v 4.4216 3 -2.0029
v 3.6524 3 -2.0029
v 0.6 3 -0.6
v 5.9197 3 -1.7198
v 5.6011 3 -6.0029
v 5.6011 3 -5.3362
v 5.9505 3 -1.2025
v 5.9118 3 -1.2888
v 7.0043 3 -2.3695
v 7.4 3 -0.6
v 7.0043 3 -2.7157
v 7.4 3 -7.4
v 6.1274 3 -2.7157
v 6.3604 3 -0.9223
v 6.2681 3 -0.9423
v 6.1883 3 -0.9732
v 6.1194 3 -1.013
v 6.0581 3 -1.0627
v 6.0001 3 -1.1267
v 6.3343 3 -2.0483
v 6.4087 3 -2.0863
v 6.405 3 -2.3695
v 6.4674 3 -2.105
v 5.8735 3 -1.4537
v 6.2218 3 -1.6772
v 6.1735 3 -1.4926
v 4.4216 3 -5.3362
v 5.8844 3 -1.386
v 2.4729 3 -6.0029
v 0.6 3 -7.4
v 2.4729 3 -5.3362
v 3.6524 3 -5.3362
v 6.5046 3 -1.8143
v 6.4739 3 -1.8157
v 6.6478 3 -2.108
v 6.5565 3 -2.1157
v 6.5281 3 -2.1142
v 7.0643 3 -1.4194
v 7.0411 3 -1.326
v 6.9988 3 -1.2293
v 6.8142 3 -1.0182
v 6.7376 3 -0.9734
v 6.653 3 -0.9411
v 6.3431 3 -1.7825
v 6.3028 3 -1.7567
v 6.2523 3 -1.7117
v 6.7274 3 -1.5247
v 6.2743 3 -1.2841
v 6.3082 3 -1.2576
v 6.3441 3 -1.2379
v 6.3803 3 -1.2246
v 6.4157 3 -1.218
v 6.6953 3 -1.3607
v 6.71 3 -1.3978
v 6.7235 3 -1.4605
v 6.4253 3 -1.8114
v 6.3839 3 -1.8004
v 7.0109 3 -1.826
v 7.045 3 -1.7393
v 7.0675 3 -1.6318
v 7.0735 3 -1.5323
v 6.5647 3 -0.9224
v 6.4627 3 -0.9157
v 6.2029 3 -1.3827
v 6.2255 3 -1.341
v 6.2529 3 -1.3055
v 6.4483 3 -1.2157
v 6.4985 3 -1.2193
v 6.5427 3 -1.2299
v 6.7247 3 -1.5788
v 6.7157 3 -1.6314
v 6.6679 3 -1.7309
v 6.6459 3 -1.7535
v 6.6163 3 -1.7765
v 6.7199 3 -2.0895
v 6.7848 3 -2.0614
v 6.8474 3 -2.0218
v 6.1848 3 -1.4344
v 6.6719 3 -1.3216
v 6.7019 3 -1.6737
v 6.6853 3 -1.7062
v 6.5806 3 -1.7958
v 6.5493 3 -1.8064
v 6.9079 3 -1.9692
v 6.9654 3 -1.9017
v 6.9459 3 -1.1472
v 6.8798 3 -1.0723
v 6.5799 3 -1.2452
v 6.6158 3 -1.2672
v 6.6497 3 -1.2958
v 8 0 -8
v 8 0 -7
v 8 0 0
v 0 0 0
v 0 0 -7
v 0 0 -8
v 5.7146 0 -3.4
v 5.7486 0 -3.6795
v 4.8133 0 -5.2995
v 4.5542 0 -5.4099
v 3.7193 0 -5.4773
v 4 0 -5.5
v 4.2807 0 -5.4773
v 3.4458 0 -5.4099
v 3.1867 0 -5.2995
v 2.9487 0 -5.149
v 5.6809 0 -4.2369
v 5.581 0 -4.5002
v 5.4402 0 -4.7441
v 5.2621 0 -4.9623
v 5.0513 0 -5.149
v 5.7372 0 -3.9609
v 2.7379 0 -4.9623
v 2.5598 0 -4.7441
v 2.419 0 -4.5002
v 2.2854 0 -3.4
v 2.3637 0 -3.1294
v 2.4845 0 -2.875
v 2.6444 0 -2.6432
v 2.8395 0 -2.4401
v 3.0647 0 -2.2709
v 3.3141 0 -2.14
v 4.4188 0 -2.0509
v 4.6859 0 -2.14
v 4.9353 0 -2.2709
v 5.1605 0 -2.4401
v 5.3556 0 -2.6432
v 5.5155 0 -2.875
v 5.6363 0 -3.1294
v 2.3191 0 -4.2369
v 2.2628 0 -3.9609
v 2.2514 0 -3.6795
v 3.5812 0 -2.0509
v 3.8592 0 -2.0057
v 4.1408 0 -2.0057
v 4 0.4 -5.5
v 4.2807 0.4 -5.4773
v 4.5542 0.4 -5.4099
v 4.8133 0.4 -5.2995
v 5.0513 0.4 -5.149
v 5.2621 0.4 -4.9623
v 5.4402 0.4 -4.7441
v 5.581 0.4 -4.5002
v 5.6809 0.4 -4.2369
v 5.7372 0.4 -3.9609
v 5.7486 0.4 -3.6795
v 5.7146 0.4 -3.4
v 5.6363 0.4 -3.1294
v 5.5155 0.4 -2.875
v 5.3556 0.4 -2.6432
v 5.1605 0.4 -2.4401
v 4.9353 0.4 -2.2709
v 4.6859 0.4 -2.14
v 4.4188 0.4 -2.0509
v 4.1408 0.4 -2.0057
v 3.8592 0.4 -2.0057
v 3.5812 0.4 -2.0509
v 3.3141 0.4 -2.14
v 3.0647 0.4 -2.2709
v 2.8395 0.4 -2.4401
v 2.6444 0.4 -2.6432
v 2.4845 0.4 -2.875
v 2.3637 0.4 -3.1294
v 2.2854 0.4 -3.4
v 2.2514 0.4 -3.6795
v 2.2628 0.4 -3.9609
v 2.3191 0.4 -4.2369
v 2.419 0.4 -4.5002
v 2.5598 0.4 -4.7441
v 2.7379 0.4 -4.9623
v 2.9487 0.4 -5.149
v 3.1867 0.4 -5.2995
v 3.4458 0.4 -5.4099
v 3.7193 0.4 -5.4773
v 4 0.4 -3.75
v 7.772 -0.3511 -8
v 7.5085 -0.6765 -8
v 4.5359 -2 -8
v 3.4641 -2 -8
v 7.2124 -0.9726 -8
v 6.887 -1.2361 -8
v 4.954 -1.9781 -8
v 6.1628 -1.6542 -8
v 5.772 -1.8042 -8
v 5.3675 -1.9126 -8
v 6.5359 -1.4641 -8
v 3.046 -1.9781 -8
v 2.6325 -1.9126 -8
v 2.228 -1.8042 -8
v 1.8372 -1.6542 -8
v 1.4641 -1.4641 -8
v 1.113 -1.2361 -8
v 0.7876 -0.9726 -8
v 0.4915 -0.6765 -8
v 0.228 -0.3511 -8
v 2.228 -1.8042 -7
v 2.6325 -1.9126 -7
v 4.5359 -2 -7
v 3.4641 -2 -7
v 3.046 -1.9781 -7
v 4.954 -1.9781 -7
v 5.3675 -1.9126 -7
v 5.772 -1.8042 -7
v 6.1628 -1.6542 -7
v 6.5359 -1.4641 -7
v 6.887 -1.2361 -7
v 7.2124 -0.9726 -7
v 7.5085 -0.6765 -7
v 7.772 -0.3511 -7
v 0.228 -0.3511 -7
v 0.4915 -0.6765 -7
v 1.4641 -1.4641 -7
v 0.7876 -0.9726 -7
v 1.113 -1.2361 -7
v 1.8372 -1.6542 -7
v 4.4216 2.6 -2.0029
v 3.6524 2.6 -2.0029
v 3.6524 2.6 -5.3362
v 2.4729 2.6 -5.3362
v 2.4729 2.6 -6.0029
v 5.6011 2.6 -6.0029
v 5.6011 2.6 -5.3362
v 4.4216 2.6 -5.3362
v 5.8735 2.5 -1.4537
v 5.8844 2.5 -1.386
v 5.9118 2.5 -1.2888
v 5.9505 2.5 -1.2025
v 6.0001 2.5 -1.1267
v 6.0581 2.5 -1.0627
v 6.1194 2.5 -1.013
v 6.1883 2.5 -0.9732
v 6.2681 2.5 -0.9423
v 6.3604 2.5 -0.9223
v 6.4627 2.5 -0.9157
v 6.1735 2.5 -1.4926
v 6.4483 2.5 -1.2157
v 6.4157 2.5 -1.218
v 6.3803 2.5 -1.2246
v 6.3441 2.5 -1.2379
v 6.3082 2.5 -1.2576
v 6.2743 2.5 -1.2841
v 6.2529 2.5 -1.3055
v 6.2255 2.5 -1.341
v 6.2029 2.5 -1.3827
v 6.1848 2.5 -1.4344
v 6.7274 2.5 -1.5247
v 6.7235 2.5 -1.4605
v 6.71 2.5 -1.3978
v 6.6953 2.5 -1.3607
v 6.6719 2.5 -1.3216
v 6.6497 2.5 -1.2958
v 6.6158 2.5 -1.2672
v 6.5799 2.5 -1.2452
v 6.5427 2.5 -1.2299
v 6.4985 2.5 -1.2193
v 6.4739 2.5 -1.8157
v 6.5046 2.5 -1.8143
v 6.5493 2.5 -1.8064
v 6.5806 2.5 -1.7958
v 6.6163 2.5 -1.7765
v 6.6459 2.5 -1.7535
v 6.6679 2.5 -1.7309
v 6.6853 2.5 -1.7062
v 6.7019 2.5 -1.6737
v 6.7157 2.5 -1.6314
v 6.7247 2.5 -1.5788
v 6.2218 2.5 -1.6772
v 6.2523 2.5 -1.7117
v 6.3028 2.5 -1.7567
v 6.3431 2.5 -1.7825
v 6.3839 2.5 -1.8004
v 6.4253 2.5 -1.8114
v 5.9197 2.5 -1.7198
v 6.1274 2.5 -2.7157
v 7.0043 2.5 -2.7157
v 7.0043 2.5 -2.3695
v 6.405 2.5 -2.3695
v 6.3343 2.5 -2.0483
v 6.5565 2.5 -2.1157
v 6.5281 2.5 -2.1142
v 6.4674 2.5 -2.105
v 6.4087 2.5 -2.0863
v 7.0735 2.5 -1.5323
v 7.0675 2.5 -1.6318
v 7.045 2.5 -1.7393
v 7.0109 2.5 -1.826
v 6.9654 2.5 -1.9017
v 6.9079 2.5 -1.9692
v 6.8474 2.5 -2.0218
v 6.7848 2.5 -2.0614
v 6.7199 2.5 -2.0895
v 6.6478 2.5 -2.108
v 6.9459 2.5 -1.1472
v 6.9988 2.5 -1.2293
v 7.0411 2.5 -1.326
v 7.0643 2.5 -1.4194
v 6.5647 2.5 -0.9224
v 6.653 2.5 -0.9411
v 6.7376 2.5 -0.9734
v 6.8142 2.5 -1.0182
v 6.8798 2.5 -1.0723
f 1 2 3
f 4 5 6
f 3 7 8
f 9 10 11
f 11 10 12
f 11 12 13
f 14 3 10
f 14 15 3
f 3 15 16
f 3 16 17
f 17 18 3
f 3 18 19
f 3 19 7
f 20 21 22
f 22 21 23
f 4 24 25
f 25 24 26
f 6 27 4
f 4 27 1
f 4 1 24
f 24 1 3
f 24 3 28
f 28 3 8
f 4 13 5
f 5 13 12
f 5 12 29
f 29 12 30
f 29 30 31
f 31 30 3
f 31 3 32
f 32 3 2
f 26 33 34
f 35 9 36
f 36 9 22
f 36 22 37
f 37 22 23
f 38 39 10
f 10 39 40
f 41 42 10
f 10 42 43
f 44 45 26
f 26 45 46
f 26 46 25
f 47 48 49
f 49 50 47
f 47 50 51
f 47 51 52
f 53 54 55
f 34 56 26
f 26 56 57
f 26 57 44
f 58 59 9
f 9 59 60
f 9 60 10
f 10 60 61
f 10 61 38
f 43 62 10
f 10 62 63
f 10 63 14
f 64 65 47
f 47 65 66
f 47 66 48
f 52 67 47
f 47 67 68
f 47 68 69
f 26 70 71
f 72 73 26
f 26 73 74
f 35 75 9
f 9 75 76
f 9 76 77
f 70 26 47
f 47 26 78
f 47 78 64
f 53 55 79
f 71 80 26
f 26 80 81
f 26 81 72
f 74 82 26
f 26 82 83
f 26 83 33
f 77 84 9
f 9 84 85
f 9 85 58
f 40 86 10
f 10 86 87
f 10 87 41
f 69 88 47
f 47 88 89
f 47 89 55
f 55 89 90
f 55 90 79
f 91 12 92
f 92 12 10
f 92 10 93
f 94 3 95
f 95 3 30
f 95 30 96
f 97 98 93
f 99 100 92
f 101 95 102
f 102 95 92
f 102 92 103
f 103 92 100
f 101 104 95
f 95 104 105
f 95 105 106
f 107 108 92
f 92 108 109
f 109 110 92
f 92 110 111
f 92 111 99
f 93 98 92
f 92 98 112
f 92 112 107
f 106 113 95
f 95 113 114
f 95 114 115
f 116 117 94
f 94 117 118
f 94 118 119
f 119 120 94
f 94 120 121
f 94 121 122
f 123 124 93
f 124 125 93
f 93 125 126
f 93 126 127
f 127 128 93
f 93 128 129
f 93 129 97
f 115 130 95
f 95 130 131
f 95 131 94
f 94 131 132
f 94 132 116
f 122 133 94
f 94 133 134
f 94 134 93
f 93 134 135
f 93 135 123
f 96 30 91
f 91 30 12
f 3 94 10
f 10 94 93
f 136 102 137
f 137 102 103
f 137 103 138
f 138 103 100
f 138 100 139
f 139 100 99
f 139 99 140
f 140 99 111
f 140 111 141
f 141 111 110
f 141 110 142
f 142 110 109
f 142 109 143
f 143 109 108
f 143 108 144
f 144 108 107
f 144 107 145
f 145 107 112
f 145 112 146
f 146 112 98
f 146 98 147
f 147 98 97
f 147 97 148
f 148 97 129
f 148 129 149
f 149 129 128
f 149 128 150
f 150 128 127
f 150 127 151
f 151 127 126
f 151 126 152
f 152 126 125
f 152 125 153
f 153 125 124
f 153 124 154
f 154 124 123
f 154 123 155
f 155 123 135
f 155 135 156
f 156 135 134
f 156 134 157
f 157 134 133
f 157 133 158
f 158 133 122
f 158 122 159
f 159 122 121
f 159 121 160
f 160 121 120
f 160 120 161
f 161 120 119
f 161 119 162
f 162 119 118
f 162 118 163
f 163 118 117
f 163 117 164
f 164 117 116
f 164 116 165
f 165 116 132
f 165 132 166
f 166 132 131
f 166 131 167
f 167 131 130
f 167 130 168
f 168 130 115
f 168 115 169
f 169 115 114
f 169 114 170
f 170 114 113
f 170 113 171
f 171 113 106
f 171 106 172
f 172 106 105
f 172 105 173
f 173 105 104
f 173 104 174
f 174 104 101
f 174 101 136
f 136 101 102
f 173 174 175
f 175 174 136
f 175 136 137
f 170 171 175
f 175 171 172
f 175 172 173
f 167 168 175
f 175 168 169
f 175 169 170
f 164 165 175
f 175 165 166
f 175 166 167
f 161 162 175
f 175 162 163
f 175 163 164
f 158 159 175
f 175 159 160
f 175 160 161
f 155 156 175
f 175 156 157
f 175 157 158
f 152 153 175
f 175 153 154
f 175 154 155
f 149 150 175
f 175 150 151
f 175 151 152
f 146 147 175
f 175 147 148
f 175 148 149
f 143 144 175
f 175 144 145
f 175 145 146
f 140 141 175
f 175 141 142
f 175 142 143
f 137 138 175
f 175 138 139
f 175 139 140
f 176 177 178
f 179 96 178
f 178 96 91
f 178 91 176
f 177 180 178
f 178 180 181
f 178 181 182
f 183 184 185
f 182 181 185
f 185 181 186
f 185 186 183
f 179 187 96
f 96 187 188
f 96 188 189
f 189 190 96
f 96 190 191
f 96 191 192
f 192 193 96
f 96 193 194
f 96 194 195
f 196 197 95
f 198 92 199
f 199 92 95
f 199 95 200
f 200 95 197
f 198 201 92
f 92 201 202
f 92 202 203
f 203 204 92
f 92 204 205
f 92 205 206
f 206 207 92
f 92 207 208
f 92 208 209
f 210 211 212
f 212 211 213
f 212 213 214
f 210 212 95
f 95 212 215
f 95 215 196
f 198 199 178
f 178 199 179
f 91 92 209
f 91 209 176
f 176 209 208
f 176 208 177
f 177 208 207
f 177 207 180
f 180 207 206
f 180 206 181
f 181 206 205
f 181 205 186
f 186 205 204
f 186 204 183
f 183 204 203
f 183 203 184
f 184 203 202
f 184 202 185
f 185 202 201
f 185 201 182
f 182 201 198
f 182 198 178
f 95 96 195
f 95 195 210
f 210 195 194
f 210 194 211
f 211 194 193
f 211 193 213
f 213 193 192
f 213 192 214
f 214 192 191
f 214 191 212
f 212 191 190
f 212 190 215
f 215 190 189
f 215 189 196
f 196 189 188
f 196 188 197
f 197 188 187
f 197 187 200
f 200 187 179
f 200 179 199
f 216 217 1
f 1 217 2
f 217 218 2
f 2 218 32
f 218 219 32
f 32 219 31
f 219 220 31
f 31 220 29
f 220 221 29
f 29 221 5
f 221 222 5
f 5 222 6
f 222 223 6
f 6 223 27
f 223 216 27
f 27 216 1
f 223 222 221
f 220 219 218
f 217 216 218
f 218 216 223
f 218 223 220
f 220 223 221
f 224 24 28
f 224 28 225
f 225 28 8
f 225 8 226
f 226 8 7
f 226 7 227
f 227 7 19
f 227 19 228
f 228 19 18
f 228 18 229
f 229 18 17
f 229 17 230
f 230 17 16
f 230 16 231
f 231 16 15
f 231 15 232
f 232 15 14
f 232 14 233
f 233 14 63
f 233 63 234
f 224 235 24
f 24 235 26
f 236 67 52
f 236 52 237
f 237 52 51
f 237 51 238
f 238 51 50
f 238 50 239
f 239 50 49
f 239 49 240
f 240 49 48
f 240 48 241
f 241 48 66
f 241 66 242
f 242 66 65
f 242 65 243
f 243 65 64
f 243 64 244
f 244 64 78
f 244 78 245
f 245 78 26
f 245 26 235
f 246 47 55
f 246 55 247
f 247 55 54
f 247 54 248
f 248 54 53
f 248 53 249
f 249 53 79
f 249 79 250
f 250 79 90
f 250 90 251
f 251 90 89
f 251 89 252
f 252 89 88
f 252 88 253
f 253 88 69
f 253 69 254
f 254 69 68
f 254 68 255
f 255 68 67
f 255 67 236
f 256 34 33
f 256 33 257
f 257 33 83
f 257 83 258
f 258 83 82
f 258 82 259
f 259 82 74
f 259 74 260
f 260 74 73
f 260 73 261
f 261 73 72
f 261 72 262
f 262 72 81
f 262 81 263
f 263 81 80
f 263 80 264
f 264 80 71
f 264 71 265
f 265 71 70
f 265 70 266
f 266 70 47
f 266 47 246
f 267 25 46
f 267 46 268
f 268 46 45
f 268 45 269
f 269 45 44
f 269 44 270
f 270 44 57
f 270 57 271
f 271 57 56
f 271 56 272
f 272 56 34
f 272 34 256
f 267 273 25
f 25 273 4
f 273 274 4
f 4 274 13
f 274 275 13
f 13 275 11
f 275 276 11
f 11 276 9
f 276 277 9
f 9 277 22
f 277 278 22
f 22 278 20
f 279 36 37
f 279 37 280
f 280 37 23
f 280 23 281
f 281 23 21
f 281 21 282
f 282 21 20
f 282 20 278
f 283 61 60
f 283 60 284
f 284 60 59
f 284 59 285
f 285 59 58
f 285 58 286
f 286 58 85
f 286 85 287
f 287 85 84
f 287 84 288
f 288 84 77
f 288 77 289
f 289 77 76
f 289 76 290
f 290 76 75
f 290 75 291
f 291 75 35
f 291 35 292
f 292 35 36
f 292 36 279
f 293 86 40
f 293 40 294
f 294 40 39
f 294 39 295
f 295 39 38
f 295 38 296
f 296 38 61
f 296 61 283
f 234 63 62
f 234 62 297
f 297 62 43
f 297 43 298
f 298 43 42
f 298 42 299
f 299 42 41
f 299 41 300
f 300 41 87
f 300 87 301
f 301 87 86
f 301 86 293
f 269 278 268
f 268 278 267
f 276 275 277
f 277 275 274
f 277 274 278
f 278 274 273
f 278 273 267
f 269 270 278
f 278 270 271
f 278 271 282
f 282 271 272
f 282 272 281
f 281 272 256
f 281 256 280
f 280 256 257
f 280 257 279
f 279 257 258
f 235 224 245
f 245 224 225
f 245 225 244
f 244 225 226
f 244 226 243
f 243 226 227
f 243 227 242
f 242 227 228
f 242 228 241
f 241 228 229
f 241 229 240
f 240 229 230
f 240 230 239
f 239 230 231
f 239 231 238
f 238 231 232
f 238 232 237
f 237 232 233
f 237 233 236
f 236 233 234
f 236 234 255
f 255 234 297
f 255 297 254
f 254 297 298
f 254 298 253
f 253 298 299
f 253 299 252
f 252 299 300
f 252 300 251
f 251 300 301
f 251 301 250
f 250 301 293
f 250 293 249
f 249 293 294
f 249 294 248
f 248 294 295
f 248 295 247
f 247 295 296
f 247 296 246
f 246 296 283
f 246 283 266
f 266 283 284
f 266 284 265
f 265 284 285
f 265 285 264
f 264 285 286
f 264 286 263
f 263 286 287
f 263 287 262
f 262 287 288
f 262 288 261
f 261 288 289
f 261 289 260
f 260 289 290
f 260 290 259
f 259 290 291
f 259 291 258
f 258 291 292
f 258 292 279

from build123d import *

# Parameters (mm, degrees)
SKETCH1_W               = 8
SKETCH1_H               = 8
BOSS_EXTRUDE1_DEPTH     = 3
CUT_EXTRUDE1_DEPTH      = 12.704699911
CUT_EXTRUDE1_DEPTH_BACK = 12.704699911
CUT_EXTRUDE2_DEPTH      = 11
SKETCH4_R               = 1.75
CUT_EXTRUDE3_DEPTH      = 0.4
SKETCH5_W               = 8
SKETCH5_H               = 1
BOSS_EXTRUDE2_DEPTH     = 2
FILLET1_R               = 4
CUT_EXTRUDE4_DEPTH      = 0.4
CUT_EXTRUDE5_DEPTH      = 0.5


with BuildPart() as part:
    # Sketch1 → Boss-Extrude1 (new body)
    with BuildSketch(Plane(origin=(0, 0, 0), x_dir=(1, 0, 0), z_dir=(0, 1, 0))):
        with Locations((4, 4)):
            Rectangle(SKETCH1_W, SKETCH1_H)
    extrude(amount=BOSS_EXTRUDE1_DEPTH)

    # Sketch2 → Cut-Extrude1 (cut, two sides: drawn at the far end of the back side and taken through both)
    with BuildSketch(Plane.XY.offset(-CUT_EXTRUDE1_DEPTH_BACK)):
        Polygon((0, 0), (0.6, 3), (0, 3), align=None)
        Polygon((8, 0), (7.4, 3), (8, 3), align=None)
    extrude(amount=CUT_EXTRUDE1_DEPTH + CUT_EXTRUDE1_DEPTH_BACK, mode=Mode.SUBTRACT)

    # Sketch3 → Cut-Extrude2 (cut)
    with BuildSketch(Plane(origin=(0, 0, 0), x_dir=(0, 0, -1), z_dir=(1, 0, 0))):
        Polygon((0, 0), (0.6, 3), (0, 3), align=None)
        Polygon((8, 3), (7.4, 3), (8, 0), align=None)
    extrude(amount=CUT_EXTRUDE2_DEPTH, mode=Mode.SUBTRACT)

    # Sketch4 → Cut-Extrude3 (cut)
    with BuildSketch(Plane.XZ):
        with Locations(Location((4, -3.75, 0), (0, 0, 270))):
            Circle(SKETCH4_R)
    extrude(amount=-CUT_EXTRUDE3_DEPTH, mode=Mode.SUBTRACT)

    # Sketch5 → Boss-Extrude2 (add)
    with BuildSketch(Plane.XZ):
        with Locations((4, -7.5)):
            Rectangle(SKETCH5_W, SKETCH5_H)
    extrude(amount=BOSS_EXTRUDE2_DEPTH)

    # Fillet1
    # the kernel refuses this fillet: 4 mm, written as the material it takes off along each edge
    with BuildSketch(Plane(origin=(8, -2, -16.660254038), x_dir=(0, 1, 0), z_dir=(0, 0, 1)), Plane(origin=(0, -2, 1.660254038), x_dir=(0, 1, 0), z_dir=(0, 0, -1))) as fillet1_piece_1:
        with BuildLine():
            CenterArc((4, 3.464101615), FILLET1_R, 180, 60)
            Line((0, 3.464101615), (-0.08, 3.464101615))
            Line((-0.08, 3.464101615), (-0.08, 0))
            Line((-0.08, 0), (0, -0.08))
            ThreePointArc((0, -0.08), (1, -0.08), (1.96, -0.069282032))
            Line((1.96, -0.069282032), (2, 0))
        make_face()
    extrude(amount=18.320508076, mode=Mode.SUBTRACT)

    # Sketch6 → Cut-Extrude4 (cut)
    with BuildSketch(Plane(origin=(0, 3, 0), x_dir=(1, 0, 0), z_dir=(0, 1, 0))):
        Polygon((3.652362984, 2.002856352), (3.652362984, 5.336189685), (2.472875805, 5.336189685), (2.472875805, 6.002856352), (5.601080933, 6.002856352), (5.601080933, 5.336189685), (4.421593754, 5.336189685), (4.421593754, 2.002856352), align=None)
    extrude(amount=-CUT_EXTRUDE4_DEPTH, mode=Mode.SUBTRACT)

    # Sketch7 → Cut-Extrude5 (cut)
    with BuildSketch(Plane(origin=(0, 3, 0), x_dir=(1, 0, 0), z_dir=(0, 1, 0))):
        with BuildLine():
            Line((5.873519392, 1.453659702), (6.173519392, 1.492602009))
            add(Edge.make_bspline(
                [(6.173519392, 1.492602009), (6.1768382, 1.472256976), (6.18322911, 1.433079261), (6.203068429, 1.378384162), (6.230697403, 1.330199963), (6.266205672, 1.289626965), (6.30661854, 1.256629271), (6.351264588, 1.233104776), (6.398791495, 1.218293755), (6.431707248, 1.216554551), (6.448279008, 1.215678932)],
                knots=[0, 0, 0, 0, 1.154848647, 2.223851388, 3.245409892, 4.254330626, 5.232966172, 6.156270698, 7.071756339, 8, 8, 8, 8], degree=3))
            add(Edge.make_bspline(
                [(6.448279008, 1.215678932), (6.457906388, 1.215848075), (6.476752132, 1.216179174), (6.504524052, 1.219937575), (6.531053869, 1.226043662), (6.55659259, 1.234330756), (6.580874213, 1.245230043), (6.603920328, 1.258567919), (6.625817059, 1.274363121), (6.646675237, 1.292223374), (6.665948362, 1.312615024), (6.682055884, 1.336087325), (6.696325112, 1.361440746), (6.707949377, 1.389364059), (6.716328852, 1.41995512), (6.722995329, 1.45269023), (6.726393576, 1.487964606), (6.7270346, 1.51218758), (6.727365546, 1.524693355)],
                knots=[0, 0, 0, 0, 0.981268084, 1.920847364, 2.851509818, 3.754644372, 4.654445699, 5.560569672, 6.465366234, 7.403985617, 8.358004942, 9.316972086, 10.299158387, 11.321223707, 12.392031981, 13.529051644, 14.724304971, 16, 16, 16, 16], degree=3))
            add(Edge.make_bspline(
                [(6.727365546, 1.524693355), (6.727178419, 1.536481523), (6.726816764, 1.559264099), (6.723461454, 1.592272205), (6.718311073, 1.623118586), (6.710117629, 1.651577708), (6.700760071, 1.678178631), (6.688143723, 1.701978526), (6.674300374, 1.724011312), (6.657427434, 1.743088207), (6.639042824, 1.759943867), (6.619463278, 1.774961982), (6.598469004, 1.787493154), (6.576269045, 1.79824857), (6.552478567, 1.806082762), (6.527290541, 1.811294815), (6.501043648, 1.815207497), (6.483029864, 1.815520133), (6.473879969, 1.815678932)],
                knots=[0, 0, 0, 0, 1.29221626, 2.497420946, 3.635005972, 4.715822244, 5.741640361, 6.720139245, 7.663294346, 8.588224307, 9.502291809, 10.395891443, 11.288713187, 12.178904539, 13.095818132, 14.026458458, 14.997562253, 16, 16, 16, 16], degree=3))
            add(Edge.make_bspline(
                [(6.473879969, 1.815678932), (6.462311673, 1.815264192), (6.439232742, 1.814436778), (6.405164091, 1.807710713), (6.372003678, 1.796760631), (6.339785969, 1.781517356), (6.308596201, 1.761859078), (6.278569411, 1.737720606), (6.249190173, 1.70951724), (6.23114374, 1.688207441), (6.2218367, 1.677217394)],
                knots=[0, 0, 0, 0, 0.931687088, 1.85873035, 2.786835662, 3.740075265, 4.723687035, 5.750832598, 6.840042753, 8, 8, 8, 8], degree=3))
            Line((6.2218367, 1.677217394), (5.919673238, 1.719765471))
            Line((5.919673238, 1.719765471), (6.127365546, 2.715678932))
            Line((6.127365546, 2.715678932), (7.004288623, 2.715678932))
            Line((7.004288623, 2.715678932), (7.004288623, 2.369525086))
            Line((7.004288623, 2.369525086), (6.405009777, 2.369525086))
            Line((6.405009777, 2.369525086), (6.3343367, 2.048251048))
            add(Edge.make_bspline(
                [(6.3343367, 2.048251048), (6.352346227, 2.058641979), (6.3874181, 2.078877348), (6.443410579, 2.099707804), (6.499690691, 2.113077126), (6.537629531, 2.114816152), (6.556452085, 2.115678932)],
                knots=[0, 0, 0, 0, 1.060051984, 2.064352337, 3.039669322, 4, 4, 4, 4], degree=3))
            add(Edge.make_bspline(
                [(6.556452085, 2.115678932), (6.574146885, 2.115202759), (6.60910097, 2.114262131), (6.660364054, 2.106544582), (6.709535097, 2.093825268), (6.756780138, 2.076125011), (6.801761249, 2.052924592), (6.844866196, 2.024883357), (6.885472675, 1.991514713), (6.924016987, 1.953782044), (6.959166694, 1.912035385), (6.989521263, 1.866512768), (7.015738821, 1.818347997), (7.037083021, 1.767008911), (7.053155816, 1.712424088), (7.065192785, 1.655063547), (7.07193581, 1.594565079), (7.072984339, 1.553314949), (7.073519392, 1.532265471)],
                knots=[0, 0, 0, 0, 0.974409932, 1.924837087, 2.848242317, 3.768103797, 4.697919751, 5.630842317, 6.595644344, 7.588240789, 8.59876155, 9.595918743, 10.597287627, 11.615415169, 12.652315553, 13.727511434, 14.840374562, 16, 16, 16, 16], degree=3))
            add(Edge.make_bspline(
                [(7.073519392, 1.532265471), (7.073036469, 1.514585649), (7.072077961, 1.479494734), (7.066471429, 1.42756738), (7.056005109, 1.377169317), (7.042672536, 1.328016631), (7.024246745, 1.280521142), (7.002381003, 1.234373213), (6.976242653, 1.189655711), (6.956076521, 1.161441782), (6.945875162, 1.147169317)],
                knots=[0, 0, 0, 0, 1.027524957, 2.039431707, 3.02972907, 4.015954419, 4.995255842, 5.985553205, 6.980960039, 8, 8, 8, 8], degree=3))
            add(Edge.make_bspline(
                [(6.945875162, 1.147169317), (6.931003624, 1.128791302), (6.901734709, 1.092621232), (6.851630217, 1.045066578), (6.797135444, 1.00512898), (6.738397987, 0.97233011), (6.675480422, 0.946591981), (6.608098871, 0.928697649), (6.536747385, 0.917626673), (6.487743367, 0.916337636), (6.462702085, 0.915678932)],
                knots=[0, 0, 0, 0, 1.018121711, 2.003781959, 2.967346956, 3.92281574, 4.896313303, 5.889026666, 6.921282725, 8, 8, 8, 8], degree=3))
            add(Edge.make_bspline(
                [(6.462702085, 0.915678932), (6.442489279, 0.916044029), (6.403022672, 0.9167569), (6.345224712, 0.92380666), (6.290451314, 0.935259909), (6.238356922, 0.95115359), (6.18925085, 0.971795666), (6.142751555, 0.99671717), (6.099246456, 1.026470486), (6.058935891, 1.060830838), (6.021919655, 1.09880899), (5.988902802, 1.140363971), (5.959526451, 1.184800784), (5.934351052, 1.232568443), (5.912895663, 1.28333195), (5.895811978, 1.337351468), (5.881746134, 1.394266746), (5.876291993, 1.433642912), (5.873519392, 1.453659702)],
                knots=[0, 0, 0, 0, 1.098912142, 2.145685936, 3.161086862, 4.139124218, 5.10307886, 6.053641493, 7.003731987, 7.963777669, 8.929946266, 9.883471279, 10.846206077, 11.822909928, 12.81603559, 13.839338588, 14.901632394, 16, 16, 16, 16], degree=3))
        make_face()
    extrude(amount=-CUT_EXTRUDE5_DEPTH, mode=Mode.SUBTRACT)


solid = part.part
